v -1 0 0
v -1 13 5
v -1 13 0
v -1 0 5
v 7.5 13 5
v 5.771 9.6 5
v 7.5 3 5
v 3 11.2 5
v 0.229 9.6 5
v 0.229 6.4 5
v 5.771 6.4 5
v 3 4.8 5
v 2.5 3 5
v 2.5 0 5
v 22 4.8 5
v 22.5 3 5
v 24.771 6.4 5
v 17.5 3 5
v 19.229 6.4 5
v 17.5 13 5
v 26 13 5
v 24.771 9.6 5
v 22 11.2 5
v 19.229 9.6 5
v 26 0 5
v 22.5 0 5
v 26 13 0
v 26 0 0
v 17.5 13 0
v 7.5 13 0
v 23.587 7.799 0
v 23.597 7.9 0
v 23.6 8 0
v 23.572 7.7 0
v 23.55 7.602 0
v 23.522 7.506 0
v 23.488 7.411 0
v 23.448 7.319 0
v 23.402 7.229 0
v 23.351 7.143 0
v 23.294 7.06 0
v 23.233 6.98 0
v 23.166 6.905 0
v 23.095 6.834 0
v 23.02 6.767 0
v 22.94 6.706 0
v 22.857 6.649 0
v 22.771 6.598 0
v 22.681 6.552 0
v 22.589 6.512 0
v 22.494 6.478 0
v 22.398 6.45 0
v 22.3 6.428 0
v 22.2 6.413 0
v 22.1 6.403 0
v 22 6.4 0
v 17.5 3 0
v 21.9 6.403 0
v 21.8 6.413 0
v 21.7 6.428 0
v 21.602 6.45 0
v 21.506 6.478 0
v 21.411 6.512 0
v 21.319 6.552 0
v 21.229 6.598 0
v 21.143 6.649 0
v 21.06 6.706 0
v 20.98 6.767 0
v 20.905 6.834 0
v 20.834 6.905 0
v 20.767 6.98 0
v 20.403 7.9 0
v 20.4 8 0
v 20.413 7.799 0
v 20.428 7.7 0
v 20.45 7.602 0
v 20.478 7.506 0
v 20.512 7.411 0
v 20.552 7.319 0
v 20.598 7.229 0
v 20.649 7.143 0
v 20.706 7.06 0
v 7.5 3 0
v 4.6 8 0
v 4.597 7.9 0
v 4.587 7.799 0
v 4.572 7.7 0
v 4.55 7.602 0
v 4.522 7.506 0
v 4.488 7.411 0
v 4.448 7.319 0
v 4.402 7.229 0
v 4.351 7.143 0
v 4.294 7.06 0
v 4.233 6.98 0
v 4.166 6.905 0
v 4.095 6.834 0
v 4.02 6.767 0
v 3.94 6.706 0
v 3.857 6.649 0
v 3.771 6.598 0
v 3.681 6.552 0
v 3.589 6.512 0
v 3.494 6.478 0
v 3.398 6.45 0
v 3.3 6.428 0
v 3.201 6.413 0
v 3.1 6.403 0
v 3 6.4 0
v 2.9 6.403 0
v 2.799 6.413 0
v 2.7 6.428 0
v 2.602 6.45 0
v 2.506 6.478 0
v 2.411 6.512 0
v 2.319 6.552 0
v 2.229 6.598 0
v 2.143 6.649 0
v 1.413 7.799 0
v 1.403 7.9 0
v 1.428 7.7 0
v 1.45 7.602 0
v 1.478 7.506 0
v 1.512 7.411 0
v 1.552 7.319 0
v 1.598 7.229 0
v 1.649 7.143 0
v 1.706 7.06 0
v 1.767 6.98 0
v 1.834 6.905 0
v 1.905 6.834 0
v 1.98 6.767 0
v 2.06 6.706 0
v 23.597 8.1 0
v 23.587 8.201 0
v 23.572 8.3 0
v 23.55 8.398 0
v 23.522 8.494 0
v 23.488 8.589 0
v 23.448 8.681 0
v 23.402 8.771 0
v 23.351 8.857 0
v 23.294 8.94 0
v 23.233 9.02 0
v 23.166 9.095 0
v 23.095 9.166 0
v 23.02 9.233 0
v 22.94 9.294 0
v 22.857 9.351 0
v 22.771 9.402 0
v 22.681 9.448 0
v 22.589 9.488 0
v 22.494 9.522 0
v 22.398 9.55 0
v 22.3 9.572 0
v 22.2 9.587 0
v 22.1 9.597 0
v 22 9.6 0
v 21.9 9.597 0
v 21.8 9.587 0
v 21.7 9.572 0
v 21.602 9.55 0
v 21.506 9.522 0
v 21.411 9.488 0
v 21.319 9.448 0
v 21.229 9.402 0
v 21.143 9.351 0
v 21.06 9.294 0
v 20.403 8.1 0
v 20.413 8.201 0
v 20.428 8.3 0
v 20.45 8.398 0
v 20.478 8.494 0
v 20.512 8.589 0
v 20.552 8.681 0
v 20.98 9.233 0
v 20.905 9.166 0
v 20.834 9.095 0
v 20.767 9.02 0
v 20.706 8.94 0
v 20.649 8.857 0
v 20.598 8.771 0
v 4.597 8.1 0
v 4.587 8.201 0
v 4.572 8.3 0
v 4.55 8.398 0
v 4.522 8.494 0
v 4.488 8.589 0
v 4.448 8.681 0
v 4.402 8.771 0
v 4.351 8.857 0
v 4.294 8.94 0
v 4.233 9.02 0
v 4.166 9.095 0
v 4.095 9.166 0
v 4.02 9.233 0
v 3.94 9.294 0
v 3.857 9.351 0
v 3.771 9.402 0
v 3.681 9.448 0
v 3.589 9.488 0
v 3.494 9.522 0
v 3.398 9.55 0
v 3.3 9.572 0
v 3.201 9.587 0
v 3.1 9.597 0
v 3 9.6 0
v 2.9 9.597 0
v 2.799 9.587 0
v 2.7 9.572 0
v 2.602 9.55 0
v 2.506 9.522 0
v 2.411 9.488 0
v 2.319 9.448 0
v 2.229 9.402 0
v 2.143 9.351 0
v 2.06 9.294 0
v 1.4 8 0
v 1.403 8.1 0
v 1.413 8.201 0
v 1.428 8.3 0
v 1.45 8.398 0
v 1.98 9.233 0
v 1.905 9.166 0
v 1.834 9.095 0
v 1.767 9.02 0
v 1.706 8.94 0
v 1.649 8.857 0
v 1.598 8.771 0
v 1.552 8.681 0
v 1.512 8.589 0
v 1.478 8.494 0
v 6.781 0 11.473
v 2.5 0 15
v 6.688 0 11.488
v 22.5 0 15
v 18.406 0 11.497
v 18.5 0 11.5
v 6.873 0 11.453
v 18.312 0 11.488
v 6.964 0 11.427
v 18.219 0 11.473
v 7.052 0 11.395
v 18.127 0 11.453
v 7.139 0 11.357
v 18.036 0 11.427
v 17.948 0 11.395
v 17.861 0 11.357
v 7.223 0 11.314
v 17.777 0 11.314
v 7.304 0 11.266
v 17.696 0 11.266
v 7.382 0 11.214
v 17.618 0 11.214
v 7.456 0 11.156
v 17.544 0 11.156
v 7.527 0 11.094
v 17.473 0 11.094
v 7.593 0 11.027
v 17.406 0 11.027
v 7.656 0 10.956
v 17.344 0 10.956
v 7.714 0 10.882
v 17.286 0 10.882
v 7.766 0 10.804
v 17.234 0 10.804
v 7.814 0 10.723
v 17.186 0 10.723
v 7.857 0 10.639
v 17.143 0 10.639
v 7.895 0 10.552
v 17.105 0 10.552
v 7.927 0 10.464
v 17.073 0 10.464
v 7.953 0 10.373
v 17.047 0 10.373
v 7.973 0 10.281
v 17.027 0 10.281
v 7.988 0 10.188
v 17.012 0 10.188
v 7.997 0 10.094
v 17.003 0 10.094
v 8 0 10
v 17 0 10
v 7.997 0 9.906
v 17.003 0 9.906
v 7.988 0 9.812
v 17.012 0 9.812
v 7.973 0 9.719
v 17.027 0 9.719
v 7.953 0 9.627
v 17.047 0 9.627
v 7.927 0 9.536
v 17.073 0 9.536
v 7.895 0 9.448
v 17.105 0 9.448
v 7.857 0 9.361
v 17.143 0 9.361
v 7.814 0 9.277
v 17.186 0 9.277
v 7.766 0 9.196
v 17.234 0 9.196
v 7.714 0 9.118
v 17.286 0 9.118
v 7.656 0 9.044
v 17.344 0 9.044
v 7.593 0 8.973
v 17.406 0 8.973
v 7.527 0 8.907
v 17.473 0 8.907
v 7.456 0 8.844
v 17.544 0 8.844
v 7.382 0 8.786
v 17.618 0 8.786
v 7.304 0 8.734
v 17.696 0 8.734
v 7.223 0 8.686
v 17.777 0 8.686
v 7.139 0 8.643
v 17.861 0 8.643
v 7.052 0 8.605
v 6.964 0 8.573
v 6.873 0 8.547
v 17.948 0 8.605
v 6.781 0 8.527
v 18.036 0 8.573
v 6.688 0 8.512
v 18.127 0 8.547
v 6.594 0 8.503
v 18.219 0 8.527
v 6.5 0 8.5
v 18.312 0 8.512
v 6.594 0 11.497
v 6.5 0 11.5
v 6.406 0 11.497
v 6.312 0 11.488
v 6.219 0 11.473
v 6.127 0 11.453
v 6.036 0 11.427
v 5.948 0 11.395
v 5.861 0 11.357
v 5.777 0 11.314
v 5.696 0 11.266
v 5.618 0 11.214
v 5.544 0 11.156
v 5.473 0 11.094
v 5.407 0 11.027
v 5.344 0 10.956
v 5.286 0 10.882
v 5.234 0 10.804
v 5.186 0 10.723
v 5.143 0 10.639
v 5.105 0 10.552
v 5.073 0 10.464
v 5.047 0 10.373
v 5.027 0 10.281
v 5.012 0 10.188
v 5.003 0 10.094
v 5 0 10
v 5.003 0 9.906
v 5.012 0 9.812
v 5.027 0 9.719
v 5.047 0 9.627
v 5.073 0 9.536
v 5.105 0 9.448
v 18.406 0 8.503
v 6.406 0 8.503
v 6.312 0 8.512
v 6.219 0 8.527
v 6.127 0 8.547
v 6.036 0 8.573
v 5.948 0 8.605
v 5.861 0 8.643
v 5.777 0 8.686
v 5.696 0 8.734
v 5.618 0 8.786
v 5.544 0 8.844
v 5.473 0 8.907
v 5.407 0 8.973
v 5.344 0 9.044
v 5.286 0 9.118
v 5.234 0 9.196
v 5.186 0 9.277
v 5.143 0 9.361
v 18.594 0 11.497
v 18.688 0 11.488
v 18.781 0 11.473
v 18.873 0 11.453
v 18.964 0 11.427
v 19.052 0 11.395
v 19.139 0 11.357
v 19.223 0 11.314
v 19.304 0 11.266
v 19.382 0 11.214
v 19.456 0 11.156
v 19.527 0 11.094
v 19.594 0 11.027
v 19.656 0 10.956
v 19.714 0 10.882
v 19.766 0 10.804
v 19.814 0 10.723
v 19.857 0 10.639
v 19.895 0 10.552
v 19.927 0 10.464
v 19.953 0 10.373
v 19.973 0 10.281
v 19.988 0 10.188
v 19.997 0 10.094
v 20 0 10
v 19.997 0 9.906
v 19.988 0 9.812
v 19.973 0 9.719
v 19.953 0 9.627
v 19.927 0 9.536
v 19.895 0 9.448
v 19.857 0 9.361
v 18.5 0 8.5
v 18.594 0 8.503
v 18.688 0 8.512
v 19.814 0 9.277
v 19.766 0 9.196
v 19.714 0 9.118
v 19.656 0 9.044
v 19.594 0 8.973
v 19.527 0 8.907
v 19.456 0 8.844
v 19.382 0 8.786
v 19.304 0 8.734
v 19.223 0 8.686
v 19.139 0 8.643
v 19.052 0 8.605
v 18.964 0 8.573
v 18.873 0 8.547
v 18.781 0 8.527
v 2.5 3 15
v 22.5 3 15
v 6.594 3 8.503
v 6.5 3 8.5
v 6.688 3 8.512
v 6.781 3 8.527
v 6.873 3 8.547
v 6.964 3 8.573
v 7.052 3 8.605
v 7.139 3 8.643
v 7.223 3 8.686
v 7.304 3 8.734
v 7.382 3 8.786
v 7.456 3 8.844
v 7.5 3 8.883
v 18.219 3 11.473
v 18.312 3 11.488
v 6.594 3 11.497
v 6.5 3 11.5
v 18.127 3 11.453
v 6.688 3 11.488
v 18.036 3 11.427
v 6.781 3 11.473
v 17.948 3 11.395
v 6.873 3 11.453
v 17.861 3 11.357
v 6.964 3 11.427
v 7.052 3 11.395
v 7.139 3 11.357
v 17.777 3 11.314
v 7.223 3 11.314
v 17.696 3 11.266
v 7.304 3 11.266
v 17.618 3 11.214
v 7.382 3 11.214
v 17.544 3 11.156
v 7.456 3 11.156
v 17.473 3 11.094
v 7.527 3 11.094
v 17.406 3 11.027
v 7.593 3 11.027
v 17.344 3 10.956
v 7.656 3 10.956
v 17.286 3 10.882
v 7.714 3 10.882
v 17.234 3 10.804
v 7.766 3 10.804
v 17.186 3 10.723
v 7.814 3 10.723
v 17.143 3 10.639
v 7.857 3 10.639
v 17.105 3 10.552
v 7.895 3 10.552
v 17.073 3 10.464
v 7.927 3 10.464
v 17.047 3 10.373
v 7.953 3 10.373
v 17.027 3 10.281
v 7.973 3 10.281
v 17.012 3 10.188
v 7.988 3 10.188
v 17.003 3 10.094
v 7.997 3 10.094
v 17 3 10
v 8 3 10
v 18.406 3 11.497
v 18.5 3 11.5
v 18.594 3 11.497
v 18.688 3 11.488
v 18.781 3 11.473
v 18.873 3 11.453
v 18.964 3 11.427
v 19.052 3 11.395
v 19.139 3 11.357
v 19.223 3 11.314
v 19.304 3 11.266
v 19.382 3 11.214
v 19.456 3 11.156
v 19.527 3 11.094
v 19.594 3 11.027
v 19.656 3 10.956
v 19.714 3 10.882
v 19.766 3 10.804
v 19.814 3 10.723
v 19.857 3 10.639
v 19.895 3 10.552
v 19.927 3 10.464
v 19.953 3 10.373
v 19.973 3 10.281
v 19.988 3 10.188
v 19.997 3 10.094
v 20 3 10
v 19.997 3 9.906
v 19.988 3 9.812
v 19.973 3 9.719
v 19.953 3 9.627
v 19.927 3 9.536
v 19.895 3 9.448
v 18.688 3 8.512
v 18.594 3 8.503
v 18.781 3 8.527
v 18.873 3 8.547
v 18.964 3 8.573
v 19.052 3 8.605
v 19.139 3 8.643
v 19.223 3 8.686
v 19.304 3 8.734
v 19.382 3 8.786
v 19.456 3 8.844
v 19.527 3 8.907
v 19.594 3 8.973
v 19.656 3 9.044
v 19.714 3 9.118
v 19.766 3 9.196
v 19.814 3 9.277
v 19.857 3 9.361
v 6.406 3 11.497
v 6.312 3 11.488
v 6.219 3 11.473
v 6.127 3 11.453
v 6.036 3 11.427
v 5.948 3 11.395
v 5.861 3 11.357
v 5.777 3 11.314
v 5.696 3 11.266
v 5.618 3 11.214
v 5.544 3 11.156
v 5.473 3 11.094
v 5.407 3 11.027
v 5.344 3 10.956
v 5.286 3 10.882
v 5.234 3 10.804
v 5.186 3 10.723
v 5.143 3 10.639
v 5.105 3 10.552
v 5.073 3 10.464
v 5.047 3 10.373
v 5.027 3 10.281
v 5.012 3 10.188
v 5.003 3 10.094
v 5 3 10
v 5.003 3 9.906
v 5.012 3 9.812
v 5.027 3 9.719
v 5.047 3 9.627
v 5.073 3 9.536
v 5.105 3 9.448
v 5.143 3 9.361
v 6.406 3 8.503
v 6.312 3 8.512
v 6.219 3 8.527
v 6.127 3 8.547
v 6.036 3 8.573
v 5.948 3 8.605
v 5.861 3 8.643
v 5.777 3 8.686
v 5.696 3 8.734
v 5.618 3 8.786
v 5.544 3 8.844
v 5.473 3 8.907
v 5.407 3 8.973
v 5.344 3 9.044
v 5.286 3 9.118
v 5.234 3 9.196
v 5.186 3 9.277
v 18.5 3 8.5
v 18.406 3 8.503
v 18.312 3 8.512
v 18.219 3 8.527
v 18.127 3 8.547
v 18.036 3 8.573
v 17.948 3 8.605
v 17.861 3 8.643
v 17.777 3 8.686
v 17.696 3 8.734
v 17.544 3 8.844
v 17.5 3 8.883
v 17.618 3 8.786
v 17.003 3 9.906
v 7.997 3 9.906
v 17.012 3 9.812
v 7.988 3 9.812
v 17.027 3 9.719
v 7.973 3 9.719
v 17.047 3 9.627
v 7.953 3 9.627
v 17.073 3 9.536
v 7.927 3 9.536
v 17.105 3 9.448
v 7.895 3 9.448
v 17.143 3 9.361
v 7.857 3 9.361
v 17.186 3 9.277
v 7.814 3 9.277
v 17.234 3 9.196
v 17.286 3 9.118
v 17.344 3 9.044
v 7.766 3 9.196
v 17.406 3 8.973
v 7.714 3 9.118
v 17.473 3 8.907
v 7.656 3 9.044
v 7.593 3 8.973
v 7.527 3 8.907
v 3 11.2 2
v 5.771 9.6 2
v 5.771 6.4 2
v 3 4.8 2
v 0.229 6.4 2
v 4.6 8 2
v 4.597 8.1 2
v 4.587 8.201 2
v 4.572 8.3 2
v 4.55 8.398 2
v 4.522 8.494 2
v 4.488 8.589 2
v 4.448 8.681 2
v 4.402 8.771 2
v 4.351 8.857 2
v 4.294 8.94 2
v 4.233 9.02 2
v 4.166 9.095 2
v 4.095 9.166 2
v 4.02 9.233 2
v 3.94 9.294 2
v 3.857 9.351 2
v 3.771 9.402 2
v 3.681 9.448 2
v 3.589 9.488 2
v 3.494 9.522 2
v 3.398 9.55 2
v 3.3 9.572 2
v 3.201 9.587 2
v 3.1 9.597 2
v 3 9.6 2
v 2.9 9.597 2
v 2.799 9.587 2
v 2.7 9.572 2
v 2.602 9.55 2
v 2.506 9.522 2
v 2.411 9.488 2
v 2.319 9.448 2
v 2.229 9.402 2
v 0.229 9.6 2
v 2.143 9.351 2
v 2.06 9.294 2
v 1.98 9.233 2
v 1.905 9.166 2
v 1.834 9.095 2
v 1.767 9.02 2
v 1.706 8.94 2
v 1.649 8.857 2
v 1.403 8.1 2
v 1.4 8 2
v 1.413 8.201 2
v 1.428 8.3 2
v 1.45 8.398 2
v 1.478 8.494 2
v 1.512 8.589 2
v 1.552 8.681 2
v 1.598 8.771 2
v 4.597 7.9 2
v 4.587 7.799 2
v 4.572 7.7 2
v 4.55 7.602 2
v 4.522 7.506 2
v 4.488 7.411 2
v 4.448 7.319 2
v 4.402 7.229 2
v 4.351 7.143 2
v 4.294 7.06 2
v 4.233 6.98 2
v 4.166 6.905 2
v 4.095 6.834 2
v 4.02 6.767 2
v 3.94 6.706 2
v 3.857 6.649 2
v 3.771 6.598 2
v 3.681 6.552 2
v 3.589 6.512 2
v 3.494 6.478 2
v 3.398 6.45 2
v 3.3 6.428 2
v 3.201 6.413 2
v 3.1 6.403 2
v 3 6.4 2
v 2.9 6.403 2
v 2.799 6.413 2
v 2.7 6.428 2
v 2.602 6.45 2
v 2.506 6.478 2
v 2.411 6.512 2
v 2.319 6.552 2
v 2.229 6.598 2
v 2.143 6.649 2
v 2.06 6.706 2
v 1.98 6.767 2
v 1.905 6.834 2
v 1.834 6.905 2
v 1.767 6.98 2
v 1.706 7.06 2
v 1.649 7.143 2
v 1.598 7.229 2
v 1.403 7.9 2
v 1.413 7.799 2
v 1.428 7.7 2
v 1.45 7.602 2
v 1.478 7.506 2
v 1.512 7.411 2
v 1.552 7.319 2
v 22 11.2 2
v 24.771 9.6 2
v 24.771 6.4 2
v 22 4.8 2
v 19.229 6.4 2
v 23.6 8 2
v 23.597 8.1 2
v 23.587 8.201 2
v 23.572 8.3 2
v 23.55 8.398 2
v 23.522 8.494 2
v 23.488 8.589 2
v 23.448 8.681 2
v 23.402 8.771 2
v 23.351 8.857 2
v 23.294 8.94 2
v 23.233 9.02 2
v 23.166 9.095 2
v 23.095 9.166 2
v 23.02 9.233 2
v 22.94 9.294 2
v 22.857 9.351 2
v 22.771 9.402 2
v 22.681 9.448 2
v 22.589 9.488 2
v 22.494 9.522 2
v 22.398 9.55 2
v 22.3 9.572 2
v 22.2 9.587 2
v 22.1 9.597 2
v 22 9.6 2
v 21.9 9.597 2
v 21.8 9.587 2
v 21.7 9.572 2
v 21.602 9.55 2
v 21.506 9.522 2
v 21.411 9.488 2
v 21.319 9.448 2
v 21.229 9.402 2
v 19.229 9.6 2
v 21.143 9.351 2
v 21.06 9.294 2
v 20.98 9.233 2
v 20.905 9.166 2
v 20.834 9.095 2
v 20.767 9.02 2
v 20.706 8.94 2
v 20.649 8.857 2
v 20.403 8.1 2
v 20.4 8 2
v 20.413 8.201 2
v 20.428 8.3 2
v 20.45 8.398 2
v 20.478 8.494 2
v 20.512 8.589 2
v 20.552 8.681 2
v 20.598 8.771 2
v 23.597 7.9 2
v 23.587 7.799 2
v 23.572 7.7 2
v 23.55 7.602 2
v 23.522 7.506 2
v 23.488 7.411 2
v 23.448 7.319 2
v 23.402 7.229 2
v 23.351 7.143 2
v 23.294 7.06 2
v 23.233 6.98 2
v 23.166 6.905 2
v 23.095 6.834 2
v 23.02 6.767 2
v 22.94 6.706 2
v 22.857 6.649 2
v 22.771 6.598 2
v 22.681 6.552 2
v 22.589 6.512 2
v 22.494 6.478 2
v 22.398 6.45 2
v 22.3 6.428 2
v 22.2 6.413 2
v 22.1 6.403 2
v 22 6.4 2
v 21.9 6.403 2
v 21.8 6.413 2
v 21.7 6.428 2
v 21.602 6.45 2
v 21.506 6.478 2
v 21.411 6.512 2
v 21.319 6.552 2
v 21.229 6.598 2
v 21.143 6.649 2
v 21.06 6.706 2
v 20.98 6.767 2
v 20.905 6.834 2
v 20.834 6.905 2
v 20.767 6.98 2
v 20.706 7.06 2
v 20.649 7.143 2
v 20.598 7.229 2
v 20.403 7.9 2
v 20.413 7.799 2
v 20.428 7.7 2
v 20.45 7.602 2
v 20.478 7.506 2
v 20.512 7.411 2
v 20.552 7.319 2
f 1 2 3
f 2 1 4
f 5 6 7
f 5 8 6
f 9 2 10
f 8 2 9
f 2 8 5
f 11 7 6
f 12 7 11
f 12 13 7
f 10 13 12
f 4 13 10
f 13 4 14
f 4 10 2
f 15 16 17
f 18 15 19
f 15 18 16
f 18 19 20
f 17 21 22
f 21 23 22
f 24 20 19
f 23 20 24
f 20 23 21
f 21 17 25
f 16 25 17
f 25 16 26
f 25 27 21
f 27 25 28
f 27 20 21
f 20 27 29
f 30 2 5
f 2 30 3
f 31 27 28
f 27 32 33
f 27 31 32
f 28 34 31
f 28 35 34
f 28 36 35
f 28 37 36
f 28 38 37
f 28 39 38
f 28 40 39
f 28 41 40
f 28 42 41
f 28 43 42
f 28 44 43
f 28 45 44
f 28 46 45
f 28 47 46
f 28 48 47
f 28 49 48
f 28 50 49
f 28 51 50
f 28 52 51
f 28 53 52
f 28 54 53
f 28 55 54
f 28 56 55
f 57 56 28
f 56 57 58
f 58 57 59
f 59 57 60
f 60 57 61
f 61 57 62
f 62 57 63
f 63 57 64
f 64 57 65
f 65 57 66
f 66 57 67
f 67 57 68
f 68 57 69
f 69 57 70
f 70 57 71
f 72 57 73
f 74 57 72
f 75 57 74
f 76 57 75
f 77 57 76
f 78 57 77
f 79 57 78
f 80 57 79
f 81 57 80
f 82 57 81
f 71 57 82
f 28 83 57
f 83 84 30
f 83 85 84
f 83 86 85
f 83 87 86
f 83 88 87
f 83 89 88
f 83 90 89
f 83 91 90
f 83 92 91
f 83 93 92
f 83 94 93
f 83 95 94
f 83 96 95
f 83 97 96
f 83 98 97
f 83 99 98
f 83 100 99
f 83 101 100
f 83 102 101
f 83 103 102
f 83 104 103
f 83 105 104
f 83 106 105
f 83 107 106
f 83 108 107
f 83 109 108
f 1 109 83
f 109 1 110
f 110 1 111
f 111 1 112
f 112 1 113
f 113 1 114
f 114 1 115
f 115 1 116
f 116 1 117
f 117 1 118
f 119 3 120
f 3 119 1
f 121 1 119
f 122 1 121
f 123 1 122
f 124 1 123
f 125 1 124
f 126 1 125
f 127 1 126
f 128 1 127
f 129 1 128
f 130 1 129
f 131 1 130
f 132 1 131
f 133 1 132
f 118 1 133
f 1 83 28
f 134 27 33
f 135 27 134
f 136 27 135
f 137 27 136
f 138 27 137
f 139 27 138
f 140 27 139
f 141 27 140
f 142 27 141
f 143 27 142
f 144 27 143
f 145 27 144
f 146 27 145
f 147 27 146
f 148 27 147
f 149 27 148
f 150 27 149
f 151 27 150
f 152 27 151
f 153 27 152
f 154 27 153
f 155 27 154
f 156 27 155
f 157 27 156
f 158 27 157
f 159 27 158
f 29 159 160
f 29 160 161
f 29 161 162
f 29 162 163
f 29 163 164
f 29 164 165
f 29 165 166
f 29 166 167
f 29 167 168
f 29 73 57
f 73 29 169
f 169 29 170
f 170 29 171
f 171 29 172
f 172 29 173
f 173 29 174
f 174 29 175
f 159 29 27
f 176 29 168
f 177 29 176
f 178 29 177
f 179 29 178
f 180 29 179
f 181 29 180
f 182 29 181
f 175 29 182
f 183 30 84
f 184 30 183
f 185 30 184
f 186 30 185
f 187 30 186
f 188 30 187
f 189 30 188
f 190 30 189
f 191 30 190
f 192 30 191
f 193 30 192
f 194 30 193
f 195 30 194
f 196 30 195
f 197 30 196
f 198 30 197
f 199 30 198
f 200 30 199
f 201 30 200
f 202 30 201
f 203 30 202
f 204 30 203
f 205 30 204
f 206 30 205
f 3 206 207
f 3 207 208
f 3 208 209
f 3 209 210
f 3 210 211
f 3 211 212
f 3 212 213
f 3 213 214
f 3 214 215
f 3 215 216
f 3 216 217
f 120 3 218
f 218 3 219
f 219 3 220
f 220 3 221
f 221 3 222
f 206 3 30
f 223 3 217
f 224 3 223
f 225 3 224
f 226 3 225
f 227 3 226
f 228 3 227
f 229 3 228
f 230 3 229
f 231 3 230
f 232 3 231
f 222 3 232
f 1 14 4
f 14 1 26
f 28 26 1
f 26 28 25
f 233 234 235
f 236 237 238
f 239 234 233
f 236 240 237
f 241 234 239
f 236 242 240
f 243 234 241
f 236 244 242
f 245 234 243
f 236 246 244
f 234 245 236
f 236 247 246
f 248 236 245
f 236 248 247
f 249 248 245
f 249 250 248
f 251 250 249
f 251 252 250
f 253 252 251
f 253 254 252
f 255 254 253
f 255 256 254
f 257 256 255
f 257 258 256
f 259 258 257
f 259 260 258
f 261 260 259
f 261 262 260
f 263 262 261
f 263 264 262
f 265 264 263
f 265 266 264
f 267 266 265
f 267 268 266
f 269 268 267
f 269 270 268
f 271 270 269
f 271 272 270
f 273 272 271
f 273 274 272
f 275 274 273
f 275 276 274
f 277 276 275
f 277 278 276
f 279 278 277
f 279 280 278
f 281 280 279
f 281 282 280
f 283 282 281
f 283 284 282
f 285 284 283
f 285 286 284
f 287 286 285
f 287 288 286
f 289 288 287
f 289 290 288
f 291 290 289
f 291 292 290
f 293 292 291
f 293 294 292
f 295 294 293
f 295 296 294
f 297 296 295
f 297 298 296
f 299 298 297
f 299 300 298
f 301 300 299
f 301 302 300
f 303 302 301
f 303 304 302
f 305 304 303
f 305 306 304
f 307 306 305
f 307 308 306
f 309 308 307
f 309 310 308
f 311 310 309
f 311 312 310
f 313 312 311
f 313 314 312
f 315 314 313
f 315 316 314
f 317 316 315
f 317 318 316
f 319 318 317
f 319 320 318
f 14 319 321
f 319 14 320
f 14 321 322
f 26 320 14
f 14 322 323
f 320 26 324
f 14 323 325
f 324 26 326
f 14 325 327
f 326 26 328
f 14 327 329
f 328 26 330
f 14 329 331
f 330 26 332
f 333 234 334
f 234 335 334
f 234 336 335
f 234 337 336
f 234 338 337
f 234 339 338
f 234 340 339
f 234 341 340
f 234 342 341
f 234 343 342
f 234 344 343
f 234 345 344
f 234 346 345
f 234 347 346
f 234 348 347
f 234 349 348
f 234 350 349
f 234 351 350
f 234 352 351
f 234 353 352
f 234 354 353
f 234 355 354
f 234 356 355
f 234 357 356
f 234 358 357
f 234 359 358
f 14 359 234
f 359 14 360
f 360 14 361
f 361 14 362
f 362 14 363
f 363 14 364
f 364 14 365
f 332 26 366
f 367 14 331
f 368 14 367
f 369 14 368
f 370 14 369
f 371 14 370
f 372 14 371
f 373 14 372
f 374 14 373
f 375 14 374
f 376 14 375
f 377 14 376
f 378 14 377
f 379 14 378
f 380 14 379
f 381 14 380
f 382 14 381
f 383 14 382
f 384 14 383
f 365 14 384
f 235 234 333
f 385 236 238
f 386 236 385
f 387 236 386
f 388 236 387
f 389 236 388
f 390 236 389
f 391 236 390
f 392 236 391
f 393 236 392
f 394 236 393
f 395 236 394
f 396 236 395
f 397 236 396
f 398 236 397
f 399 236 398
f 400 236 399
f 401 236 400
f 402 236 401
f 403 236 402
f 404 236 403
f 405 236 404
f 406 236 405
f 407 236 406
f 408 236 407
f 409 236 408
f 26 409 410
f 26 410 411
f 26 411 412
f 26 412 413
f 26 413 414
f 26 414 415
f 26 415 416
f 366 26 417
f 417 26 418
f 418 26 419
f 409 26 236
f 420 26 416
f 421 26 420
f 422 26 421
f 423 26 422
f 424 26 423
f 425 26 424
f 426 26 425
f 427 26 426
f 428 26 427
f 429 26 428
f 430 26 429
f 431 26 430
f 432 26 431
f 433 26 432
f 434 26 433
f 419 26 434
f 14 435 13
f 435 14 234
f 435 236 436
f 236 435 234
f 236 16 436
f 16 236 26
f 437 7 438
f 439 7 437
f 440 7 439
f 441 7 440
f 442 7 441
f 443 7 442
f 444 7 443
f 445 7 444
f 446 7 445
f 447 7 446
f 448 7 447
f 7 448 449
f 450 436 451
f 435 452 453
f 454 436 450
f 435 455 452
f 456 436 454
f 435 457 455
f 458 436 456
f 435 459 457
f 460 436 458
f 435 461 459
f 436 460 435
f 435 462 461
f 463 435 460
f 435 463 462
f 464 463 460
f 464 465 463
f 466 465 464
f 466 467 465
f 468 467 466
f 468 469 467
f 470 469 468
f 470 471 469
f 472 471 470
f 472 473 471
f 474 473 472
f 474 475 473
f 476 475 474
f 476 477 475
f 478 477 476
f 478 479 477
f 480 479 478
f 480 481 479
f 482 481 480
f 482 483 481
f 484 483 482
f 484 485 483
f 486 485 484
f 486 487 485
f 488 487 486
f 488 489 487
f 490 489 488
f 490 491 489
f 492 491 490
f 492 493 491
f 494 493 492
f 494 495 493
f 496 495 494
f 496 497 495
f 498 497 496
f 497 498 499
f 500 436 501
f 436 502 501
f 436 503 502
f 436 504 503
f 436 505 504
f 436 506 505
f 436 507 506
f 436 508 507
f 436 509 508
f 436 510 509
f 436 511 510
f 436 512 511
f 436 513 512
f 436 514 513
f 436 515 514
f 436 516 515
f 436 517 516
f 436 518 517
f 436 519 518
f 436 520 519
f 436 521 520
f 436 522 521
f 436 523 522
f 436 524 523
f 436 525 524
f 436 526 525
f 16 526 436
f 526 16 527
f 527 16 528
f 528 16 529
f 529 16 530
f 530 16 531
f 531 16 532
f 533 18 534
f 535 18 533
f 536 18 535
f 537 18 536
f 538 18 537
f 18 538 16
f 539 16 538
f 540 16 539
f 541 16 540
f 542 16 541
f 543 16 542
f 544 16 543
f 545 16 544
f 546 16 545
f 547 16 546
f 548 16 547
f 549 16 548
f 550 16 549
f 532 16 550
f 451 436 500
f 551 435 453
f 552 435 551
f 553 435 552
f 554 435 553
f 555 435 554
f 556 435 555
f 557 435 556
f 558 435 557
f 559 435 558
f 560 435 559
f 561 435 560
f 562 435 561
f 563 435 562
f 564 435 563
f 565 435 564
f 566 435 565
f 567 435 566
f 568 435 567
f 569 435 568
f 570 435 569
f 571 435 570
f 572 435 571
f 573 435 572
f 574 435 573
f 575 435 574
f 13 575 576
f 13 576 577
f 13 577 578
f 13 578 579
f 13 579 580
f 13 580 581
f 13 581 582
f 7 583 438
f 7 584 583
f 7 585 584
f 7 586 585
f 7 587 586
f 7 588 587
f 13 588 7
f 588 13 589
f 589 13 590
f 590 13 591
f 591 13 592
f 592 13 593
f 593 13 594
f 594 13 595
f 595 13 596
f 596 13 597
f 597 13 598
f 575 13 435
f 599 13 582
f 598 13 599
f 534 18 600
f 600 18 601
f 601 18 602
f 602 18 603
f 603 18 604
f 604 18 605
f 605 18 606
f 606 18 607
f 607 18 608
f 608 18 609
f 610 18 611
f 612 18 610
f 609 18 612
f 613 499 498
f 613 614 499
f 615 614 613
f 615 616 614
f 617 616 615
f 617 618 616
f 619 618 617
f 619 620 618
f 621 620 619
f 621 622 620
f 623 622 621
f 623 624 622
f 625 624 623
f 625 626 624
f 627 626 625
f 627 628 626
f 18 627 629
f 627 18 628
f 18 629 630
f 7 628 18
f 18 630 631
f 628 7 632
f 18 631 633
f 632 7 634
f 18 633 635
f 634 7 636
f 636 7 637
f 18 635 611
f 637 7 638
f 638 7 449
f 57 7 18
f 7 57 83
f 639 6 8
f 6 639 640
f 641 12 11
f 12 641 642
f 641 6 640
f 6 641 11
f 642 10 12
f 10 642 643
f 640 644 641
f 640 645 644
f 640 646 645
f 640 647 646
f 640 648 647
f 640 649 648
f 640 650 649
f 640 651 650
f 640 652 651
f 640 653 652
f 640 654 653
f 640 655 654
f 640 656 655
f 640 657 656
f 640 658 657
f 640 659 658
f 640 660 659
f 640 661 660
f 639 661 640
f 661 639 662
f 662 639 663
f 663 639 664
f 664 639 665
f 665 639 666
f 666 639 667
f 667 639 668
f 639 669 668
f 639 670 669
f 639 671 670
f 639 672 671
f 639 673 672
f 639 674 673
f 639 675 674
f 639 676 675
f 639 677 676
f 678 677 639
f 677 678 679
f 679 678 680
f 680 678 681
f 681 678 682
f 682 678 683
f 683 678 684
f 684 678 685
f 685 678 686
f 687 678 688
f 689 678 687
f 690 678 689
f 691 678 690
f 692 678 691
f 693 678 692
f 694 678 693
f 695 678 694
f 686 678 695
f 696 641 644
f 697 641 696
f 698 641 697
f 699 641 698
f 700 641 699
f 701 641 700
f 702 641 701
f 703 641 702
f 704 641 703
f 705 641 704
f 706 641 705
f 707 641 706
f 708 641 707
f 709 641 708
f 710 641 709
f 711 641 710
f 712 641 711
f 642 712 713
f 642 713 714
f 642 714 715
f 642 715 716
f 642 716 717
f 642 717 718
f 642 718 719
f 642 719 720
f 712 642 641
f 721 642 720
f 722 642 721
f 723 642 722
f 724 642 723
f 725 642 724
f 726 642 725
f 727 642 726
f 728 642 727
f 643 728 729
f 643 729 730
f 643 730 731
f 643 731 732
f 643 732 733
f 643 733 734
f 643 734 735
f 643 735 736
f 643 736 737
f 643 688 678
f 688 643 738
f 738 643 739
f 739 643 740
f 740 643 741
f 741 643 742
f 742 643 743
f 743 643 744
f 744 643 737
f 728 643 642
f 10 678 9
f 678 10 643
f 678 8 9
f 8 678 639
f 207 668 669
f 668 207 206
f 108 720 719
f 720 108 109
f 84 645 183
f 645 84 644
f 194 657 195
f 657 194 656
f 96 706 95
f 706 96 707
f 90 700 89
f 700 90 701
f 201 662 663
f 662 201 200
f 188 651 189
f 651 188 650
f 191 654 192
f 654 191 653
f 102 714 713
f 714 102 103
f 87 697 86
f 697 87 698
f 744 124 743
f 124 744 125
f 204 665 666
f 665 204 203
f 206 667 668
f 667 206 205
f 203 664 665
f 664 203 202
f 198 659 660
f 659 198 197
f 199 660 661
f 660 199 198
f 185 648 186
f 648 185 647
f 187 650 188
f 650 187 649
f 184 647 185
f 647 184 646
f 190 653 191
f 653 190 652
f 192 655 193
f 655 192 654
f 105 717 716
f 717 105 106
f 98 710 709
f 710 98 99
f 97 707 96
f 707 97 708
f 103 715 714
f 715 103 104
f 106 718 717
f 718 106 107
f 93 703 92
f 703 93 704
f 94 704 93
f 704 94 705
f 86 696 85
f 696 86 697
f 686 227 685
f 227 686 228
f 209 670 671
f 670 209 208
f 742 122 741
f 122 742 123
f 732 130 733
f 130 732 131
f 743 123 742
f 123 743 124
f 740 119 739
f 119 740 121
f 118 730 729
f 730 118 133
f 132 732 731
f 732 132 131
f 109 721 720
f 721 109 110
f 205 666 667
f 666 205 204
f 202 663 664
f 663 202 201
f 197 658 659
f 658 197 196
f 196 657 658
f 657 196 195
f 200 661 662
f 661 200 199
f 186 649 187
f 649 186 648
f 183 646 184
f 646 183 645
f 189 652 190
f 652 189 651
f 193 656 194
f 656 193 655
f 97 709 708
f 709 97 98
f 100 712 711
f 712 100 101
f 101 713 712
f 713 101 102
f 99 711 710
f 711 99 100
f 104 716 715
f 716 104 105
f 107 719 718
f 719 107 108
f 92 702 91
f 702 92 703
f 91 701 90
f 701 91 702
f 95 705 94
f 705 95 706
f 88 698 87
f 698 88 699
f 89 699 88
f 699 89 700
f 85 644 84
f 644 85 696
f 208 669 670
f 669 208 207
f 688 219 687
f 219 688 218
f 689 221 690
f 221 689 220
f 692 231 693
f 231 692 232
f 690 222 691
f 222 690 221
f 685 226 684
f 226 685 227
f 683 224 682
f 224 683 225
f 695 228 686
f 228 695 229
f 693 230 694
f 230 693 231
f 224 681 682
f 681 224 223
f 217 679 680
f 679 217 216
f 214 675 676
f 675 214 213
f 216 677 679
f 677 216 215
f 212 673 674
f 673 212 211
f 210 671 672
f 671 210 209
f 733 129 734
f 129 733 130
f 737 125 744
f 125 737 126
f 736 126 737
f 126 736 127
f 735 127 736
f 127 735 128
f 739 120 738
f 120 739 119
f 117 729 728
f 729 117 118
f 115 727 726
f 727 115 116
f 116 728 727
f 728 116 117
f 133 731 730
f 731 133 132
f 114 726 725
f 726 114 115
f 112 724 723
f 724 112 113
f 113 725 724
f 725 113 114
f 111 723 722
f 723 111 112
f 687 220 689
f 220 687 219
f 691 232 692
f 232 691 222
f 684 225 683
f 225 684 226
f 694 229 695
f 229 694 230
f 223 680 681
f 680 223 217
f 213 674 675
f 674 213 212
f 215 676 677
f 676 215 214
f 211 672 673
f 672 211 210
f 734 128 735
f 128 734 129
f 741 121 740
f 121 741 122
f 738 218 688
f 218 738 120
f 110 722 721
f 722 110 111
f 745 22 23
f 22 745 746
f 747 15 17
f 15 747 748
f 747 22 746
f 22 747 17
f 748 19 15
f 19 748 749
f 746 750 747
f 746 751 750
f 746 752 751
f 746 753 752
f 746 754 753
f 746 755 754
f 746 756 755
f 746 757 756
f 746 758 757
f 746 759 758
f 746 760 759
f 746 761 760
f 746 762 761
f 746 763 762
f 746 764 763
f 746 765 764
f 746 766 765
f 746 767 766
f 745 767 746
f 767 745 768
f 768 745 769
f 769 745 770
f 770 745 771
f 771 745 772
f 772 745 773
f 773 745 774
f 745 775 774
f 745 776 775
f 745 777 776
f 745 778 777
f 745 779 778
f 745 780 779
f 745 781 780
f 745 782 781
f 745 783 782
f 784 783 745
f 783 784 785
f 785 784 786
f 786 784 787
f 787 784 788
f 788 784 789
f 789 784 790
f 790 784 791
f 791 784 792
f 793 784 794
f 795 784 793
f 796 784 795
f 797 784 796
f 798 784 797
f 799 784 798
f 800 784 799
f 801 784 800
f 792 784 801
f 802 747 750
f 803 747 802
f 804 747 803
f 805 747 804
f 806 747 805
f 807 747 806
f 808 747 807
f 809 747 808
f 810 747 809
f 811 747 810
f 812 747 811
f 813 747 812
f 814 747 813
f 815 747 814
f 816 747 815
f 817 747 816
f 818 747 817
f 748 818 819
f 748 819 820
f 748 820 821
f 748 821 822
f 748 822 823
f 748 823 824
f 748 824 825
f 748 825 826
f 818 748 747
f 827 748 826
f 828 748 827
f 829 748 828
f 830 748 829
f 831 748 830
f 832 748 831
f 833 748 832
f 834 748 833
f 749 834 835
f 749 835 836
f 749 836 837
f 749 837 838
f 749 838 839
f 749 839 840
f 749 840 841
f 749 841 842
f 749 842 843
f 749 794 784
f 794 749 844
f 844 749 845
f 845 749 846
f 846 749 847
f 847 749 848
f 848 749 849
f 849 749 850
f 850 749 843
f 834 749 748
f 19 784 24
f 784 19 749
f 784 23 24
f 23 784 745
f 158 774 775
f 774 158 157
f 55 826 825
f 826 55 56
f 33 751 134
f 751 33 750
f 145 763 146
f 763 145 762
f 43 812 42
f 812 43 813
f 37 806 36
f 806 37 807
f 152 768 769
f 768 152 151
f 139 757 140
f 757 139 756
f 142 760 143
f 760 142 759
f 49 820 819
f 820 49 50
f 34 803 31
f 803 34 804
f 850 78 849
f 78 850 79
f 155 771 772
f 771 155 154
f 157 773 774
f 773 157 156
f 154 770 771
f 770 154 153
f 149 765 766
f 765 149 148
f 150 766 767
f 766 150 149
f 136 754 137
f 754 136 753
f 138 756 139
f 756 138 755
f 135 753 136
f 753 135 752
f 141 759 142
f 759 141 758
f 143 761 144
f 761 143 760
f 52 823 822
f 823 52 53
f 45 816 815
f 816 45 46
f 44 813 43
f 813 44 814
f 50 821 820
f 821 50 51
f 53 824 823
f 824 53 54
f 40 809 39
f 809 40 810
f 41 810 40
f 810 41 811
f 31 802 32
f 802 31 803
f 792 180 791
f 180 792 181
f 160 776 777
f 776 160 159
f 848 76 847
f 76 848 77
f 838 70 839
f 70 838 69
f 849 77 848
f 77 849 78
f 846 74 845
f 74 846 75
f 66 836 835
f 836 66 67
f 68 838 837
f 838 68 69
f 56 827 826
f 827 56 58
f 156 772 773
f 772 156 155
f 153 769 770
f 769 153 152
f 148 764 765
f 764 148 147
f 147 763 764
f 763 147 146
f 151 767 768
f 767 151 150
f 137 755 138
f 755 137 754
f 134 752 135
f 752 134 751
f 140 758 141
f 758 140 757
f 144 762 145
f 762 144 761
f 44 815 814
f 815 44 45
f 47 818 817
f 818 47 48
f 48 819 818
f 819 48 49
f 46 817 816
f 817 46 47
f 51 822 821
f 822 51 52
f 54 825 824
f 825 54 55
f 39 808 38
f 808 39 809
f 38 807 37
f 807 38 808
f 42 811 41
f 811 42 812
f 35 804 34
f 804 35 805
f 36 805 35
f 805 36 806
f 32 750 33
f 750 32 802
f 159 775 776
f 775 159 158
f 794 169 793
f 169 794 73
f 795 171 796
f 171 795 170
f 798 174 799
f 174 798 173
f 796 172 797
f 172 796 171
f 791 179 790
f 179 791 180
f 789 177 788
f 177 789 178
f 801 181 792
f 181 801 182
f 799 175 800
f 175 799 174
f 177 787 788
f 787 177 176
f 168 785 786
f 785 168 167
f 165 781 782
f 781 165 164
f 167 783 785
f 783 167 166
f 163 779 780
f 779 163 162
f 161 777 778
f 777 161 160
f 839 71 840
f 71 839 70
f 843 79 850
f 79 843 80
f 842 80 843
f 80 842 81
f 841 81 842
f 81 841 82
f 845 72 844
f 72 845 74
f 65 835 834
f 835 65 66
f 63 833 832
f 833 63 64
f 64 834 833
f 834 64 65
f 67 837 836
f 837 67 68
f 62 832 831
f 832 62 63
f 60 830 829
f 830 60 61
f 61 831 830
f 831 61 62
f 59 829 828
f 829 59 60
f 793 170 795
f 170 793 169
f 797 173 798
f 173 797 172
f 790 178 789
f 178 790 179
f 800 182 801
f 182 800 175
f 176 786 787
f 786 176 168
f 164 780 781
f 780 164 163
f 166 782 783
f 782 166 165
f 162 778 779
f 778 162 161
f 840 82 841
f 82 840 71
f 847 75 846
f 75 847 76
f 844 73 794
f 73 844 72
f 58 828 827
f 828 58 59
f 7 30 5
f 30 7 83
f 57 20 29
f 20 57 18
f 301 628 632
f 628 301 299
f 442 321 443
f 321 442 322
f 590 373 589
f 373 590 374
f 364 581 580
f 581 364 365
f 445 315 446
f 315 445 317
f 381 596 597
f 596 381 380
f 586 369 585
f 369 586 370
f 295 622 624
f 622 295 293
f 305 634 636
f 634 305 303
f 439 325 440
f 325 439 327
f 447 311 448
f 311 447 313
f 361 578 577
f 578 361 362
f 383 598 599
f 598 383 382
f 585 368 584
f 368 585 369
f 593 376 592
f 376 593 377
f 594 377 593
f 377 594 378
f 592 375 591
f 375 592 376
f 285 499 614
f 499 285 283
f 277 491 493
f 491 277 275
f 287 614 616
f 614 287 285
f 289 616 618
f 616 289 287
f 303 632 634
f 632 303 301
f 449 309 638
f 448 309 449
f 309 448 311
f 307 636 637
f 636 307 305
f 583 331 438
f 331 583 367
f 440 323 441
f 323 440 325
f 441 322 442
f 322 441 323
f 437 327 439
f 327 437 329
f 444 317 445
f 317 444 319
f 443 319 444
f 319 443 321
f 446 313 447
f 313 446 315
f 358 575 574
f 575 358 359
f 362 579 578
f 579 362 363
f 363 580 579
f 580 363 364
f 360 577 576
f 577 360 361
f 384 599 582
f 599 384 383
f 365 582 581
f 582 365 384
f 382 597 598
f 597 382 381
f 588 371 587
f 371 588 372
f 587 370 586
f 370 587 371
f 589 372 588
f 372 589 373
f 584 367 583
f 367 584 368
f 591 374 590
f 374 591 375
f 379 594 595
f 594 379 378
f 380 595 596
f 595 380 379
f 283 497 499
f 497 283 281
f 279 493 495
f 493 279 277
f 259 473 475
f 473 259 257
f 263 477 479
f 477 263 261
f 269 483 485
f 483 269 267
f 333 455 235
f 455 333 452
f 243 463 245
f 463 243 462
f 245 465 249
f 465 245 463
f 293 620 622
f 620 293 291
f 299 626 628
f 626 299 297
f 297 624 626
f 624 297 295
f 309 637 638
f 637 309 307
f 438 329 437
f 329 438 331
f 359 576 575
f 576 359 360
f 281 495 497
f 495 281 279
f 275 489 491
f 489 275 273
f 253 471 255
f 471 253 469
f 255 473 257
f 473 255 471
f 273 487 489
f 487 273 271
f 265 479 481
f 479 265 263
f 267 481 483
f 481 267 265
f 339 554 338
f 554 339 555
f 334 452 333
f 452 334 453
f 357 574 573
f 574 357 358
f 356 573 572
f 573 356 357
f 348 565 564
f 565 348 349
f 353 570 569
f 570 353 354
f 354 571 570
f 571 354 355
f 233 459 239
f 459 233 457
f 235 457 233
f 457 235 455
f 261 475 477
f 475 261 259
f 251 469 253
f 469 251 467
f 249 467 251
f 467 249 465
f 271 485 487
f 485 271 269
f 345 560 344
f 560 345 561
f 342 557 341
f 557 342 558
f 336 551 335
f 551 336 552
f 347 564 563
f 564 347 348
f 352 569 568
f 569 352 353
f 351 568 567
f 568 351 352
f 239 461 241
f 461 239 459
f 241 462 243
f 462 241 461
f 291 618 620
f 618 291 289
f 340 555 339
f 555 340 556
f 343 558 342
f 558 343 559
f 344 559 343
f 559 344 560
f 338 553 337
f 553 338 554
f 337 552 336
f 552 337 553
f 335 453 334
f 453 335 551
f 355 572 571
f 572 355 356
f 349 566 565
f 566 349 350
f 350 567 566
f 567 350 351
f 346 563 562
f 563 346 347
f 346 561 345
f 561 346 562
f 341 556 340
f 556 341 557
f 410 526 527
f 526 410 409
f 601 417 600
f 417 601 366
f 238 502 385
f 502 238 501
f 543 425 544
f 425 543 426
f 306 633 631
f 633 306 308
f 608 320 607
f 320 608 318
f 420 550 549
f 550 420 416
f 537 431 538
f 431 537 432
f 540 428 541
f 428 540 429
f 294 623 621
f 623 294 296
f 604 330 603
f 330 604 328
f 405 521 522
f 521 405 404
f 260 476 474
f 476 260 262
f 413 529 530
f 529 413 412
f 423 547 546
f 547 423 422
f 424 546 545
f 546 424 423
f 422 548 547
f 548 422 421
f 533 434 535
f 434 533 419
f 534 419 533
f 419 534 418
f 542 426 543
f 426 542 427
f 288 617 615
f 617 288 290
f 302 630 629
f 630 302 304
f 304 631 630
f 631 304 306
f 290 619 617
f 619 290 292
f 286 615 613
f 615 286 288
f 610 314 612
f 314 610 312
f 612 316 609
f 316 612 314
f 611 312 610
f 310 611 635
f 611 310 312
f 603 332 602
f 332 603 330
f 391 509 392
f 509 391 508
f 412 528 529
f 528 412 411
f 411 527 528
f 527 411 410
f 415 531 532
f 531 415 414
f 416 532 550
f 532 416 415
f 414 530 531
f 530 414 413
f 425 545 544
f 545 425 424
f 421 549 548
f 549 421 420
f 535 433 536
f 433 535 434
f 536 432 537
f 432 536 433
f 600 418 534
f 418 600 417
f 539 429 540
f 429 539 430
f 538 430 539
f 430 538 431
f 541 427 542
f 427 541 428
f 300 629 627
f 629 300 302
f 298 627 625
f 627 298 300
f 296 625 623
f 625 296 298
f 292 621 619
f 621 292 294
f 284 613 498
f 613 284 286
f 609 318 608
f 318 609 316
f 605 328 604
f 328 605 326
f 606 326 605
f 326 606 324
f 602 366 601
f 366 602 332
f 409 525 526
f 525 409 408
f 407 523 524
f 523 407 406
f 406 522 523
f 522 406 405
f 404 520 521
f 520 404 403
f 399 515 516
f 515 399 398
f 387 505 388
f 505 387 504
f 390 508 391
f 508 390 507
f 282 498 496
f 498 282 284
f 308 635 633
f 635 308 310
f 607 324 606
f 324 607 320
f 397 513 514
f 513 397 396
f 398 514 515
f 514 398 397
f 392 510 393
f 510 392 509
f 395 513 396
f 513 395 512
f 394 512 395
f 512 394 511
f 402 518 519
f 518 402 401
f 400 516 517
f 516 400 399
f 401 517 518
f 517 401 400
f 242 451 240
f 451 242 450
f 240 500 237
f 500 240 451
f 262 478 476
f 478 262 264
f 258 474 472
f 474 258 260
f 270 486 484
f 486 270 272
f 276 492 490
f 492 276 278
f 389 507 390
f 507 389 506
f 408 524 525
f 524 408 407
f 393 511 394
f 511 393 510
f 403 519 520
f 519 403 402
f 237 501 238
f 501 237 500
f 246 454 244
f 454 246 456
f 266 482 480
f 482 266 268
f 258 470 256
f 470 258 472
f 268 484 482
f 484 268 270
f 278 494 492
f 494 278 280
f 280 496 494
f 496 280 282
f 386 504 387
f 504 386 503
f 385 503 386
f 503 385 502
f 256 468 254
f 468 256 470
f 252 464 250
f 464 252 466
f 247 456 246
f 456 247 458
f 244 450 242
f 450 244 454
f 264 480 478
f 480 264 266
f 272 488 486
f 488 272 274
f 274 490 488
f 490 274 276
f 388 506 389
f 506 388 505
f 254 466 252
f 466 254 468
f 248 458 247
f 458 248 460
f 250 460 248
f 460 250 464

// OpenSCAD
$fn=100;

module m3_hole(){
    cylinder(r=3.2, h=4, $fn=6);
    cylinder(r=1.6,h=20);
    }

difference(){
    union(){
        translate([-1,0,0])cube([27,13,5]);
        translate([2.5,0,0])cube([20,3,15]);
    }
    translate([7.5,3,0])cube([10,10,10]);
    translate([6.5,0,10])rotate([-90,0,0])cylinder(r=1.5,h=10);
    translate([18.5,0,10])rotate([-90,0,0])cylinder(r=1.5,h=10);    
    translate([3,8,6])rotate([180,0,90])m3_hole();
    translate([22,8,6])rotate([180,0,90])m3_hole();
    //translate([12.5,0,15])rotate([-90,0,0])cylinder(r=4.5,h=10);
}
